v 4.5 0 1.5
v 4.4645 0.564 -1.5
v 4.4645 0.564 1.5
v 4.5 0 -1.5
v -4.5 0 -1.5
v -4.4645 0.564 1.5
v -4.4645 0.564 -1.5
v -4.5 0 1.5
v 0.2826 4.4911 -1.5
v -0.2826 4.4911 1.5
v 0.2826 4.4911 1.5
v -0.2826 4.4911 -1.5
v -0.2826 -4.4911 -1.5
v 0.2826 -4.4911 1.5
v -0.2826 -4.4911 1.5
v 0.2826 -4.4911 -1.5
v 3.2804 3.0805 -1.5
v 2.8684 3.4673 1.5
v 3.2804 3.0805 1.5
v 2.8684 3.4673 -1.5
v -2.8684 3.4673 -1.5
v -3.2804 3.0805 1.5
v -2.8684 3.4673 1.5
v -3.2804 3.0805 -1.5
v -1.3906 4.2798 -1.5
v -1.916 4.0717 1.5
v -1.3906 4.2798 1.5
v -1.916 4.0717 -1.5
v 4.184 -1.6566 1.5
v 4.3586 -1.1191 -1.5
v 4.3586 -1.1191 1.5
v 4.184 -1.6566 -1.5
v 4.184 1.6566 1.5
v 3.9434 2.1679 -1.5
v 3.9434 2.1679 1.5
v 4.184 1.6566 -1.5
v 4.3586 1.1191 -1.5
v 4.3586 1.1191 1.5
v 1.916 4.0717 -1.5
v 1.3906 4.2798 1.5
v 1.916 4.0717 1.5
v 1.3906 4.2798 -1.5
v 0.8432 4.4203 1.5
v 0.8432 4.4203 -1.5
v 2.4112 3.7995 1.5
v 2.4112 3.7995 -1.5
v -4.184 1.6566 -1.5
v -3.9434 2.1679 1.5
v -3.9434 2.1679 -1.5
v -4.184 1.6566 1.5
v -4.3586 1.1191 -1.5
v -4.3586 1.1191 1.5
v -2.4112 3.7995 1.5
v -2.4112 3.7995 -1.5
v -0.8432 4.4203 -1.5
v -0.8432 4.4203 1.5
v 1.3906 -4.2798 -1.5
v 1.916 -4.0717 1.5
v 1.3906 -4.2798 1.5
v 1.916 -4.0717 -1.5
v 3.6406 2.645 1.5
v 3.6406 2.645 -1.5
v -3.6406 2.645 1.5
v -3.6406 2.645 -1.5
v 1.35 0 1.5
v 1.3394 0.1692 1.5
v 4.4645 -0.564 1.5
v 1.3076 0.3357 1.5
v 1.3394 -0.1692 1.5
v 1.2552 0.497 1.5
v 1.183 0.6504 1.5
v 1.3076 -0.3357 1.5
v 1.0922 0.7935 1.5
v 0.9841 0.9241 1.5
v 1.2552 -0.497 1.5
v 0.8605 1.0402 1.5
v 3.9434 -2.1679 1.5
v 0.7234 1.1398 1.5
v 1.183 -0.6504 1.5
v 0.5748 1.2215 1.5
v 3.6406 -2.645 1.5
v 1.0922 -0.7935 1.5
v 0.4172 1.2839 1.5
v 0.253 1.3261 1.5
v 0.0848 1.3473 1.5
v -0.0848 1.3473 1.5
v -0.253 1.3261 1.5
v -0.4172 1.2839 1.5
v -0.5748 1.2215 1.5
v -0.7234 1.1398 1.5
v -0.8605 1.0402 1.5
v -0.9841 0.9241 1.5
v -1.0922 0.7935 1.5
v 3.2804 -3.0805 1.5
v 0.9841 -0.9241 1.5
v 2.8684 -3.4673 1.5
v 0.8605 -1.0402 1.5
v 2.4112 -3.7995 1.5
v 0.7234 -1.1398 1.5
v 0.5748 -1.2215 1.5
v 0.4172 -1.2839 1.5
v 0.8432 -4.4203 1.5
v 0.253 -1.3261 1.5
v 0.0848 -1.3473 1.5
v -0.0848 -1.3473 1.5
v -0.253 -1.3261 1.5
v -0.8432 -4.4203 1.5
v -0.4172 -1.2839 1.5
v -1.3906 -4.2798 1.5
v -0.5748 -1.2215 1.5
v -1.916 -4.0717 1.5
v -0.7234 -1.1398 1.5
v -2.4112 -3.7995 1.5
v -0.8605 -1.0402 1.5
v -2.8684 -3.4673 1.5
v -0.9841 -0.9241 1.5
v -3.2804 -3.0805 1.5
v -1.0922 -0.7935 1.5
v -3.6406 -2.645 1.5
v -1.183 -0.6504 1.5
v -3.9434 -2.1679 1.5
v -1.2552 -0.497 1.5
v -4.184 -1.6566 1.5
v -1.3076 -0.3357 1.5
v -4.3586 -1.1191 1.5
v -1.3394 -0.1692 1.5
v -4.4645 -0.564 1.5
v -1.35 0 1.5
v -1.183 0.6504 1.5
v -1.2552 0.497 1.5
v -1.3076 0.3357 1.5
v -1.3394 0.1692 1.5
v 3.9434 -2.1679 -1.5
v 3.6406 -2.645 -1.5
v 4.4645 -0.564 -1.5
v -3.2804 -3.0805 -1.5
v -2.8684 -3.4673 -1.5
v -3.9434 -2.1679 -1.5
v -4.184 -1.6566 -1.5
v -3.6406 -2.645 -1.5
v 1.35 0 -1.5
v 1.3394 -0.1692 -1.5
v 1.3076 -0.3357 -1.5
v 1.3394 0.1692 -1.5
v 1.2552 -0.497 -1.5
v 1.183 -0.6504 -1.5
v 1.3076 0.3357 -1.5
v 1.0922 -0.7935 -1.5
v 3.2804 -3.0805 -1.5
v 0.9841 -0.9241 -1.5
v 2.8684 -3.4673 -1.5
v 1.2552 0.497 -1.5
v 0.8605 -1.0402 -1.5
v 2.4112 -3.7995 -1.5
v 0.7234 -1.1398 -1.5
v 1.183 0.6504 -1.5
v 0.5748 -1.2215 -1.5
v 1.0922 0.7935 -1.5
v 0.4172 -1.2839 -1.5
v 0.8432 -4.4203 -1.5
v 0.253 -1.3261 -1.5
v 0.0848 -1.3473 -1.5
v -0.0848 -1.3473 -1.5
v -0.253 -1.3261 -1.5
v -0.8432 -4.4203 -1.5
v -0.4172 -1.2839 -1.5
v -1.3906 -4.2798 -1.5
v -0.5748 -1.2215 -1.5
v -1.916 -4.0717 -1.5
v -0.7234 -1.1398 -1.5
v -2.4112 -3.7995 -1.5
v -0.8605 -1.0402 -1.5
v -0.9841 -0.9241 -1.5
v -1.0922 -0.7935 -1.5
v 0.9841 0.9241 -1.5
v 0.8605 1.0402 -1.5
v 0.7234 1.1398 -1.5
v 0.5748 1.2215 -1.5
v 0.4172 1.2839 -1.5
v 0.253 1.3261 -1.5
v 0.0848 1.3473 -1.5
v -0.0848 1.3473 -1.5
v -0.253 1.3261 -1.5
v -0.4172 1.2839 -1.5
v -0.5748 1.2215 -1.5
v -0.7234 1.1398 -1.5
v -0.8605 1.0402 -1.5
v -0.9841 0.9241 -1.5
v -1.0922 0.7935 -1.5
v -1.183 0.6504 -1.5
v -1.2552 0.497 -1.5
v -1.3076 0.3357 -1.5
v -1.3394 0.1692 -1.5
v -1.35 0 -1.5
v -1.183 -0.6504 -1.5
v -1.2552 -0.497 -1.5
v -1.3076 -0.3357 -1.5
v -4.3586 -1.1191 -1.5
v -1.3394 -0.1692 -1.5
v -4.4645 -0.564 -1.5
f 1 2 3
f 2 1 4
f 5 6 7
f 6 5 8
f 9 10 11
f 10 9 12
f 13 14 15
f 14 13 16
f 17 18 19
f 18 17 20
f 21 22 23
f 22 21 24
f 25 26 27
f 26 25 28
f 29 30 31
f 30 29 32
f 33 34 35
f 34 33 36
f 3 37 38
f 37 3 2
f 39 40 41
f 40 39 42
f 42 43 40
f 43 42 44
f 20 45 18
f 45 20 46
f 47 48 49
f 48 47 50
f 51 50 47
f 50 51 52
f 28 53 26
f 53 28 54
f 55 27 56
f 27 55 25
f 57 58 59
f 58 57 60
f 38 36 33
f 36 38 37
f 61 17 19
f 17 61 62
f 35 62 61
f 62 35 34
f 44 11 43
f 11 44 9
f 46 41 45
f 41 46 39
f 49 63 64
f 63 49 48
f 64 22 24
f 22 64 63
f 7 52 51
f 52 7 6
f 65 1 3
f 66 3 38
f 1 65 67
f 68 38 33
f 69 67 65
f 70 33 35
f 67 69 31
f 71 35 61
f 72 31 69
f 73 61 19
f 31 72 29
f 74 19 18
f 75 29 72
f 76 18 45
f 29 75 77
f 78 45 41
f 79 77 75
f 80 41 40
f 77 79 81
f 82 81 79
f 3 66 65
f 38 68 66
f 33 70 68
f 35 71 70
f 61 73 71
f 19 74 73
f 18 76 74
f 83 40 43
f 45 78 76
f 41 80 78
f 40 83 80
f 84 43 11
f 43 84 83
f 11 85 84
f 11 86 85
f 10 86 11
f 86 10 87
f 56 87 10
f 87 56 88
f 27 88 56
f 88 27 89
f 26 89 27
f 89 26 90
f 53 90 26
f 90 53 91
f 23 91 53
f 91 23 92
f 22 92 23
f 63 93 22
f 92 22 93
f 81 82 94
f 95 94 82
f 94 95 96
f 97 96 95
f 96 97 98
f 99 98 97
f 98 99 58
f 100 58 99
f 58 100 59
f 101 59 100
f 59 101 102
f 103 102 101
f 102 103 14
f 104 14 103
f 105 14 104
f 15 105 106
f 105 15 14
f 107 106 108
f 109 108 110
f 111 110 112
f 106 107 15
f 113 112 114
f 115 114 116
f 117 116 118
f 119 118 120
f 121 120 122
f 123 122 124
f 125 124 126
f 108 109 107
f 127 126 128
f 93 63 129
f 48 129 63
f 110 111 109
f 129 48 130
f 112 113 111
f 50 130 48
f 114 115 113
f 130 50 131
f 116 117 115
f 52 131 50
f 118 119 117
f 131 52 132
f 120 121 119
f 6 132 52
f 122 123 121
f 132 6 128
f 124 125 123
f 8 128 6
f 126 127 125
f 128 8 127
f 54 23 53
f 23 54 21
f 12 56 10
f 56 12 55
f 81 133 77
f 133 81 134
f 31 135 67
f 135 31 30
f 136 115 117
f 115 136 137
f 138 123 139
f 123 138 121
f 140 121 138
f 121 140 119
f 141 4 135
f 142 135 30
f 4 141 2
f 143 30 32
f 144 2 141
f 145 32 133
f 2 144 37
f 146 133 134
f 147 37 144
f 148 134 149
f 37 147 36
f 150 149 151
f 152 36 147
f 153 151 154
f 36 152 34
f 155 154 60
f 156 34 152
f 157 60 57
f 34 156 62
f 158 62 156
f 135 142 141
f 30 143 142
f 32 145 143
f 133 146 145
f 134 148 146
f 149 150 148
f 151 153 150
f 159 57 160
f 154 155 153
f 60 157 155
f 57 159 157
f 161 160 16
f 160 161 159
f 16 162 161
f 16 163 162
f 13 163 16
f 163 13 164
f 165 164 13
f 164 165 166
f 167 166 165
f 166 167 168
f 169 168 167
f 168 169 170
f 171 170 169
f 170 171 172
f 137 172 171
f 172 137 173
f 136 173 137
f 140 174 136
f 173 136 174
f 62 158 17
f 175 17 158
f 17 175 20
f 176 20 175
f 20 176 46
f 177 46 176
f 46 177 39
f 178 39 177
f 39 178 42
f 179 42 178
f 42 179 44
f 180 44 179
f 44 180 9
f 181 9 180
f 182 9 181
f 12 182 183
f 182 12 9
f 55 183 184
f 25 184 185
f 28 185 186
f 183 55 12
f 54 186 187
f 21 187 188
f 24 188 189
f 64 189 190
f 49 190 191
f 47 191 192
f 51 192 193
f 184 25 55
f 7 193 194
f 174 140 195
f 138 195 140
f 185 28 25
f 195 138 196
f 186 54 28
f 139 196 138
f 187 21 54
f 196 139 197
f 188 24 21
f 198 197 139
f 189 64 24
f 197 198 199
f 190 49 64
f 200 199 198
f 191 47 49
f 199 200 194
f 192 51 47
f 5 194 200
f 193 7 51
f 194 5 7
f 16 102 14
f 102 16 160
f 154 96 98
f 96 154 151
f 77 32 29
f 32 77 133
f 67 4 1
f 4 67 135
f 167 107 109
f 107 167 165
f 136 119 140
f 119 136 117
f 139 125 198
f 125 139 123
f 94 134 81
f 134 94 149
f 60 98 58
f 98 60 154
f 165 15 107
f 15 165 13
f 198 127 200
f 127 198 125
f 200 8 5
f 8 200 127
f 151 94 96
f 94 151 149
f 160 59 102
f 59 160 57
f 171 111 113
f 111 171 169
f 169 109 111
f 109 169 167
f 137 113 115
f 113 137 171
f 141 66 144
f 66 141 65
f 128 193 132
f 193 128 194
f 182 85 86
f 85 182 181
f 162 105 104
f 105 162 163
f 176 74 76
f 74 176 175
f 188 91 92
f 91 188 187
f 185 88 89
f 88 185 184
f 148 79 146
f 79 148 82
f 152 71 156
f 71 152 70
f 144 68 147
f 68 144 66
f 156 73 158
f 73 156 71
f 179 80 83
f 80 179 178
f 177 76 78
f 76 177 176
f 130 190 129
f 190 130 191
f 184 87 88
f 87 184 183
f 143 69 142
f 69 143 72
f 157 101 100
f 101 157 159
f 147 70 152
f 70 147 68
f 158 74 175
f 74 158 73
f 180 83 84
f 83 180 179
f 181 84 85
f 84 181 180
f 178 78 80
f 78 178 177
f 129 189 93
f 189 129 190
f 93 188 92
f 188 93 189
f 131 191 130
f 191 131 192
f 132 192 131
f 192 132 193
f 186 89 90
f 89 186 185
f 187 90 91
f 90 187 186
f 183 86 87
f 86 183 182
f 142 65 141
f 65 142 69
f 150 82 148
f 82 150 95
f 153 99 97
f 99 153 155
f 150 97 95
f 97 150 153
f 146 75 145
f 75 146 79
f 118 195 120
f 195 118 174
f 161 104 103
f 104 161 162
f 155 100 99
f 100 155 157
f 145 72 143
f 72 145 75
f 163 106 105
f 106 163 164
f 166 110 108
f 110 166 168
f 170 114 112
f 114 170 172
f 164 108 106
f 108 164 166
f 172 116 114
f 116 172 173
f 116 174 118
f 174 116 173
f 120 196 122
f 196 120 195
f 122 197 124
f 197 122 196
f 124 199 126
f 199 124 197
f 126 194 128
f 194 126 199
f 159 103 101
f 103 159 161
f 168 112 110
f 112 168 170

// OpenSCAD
$fn = 50;


difference() {
	union() {
		translate(v = [0, 0, -1.5000000000]) {
			cylinder(h = 3, r = 4.5000000000);
		}
	}
	union() {
		translate(v = [0, 0, -100.0000000000]) {
			cylinder(h = 200, r = 1.3500000000);
		}
	}
}
